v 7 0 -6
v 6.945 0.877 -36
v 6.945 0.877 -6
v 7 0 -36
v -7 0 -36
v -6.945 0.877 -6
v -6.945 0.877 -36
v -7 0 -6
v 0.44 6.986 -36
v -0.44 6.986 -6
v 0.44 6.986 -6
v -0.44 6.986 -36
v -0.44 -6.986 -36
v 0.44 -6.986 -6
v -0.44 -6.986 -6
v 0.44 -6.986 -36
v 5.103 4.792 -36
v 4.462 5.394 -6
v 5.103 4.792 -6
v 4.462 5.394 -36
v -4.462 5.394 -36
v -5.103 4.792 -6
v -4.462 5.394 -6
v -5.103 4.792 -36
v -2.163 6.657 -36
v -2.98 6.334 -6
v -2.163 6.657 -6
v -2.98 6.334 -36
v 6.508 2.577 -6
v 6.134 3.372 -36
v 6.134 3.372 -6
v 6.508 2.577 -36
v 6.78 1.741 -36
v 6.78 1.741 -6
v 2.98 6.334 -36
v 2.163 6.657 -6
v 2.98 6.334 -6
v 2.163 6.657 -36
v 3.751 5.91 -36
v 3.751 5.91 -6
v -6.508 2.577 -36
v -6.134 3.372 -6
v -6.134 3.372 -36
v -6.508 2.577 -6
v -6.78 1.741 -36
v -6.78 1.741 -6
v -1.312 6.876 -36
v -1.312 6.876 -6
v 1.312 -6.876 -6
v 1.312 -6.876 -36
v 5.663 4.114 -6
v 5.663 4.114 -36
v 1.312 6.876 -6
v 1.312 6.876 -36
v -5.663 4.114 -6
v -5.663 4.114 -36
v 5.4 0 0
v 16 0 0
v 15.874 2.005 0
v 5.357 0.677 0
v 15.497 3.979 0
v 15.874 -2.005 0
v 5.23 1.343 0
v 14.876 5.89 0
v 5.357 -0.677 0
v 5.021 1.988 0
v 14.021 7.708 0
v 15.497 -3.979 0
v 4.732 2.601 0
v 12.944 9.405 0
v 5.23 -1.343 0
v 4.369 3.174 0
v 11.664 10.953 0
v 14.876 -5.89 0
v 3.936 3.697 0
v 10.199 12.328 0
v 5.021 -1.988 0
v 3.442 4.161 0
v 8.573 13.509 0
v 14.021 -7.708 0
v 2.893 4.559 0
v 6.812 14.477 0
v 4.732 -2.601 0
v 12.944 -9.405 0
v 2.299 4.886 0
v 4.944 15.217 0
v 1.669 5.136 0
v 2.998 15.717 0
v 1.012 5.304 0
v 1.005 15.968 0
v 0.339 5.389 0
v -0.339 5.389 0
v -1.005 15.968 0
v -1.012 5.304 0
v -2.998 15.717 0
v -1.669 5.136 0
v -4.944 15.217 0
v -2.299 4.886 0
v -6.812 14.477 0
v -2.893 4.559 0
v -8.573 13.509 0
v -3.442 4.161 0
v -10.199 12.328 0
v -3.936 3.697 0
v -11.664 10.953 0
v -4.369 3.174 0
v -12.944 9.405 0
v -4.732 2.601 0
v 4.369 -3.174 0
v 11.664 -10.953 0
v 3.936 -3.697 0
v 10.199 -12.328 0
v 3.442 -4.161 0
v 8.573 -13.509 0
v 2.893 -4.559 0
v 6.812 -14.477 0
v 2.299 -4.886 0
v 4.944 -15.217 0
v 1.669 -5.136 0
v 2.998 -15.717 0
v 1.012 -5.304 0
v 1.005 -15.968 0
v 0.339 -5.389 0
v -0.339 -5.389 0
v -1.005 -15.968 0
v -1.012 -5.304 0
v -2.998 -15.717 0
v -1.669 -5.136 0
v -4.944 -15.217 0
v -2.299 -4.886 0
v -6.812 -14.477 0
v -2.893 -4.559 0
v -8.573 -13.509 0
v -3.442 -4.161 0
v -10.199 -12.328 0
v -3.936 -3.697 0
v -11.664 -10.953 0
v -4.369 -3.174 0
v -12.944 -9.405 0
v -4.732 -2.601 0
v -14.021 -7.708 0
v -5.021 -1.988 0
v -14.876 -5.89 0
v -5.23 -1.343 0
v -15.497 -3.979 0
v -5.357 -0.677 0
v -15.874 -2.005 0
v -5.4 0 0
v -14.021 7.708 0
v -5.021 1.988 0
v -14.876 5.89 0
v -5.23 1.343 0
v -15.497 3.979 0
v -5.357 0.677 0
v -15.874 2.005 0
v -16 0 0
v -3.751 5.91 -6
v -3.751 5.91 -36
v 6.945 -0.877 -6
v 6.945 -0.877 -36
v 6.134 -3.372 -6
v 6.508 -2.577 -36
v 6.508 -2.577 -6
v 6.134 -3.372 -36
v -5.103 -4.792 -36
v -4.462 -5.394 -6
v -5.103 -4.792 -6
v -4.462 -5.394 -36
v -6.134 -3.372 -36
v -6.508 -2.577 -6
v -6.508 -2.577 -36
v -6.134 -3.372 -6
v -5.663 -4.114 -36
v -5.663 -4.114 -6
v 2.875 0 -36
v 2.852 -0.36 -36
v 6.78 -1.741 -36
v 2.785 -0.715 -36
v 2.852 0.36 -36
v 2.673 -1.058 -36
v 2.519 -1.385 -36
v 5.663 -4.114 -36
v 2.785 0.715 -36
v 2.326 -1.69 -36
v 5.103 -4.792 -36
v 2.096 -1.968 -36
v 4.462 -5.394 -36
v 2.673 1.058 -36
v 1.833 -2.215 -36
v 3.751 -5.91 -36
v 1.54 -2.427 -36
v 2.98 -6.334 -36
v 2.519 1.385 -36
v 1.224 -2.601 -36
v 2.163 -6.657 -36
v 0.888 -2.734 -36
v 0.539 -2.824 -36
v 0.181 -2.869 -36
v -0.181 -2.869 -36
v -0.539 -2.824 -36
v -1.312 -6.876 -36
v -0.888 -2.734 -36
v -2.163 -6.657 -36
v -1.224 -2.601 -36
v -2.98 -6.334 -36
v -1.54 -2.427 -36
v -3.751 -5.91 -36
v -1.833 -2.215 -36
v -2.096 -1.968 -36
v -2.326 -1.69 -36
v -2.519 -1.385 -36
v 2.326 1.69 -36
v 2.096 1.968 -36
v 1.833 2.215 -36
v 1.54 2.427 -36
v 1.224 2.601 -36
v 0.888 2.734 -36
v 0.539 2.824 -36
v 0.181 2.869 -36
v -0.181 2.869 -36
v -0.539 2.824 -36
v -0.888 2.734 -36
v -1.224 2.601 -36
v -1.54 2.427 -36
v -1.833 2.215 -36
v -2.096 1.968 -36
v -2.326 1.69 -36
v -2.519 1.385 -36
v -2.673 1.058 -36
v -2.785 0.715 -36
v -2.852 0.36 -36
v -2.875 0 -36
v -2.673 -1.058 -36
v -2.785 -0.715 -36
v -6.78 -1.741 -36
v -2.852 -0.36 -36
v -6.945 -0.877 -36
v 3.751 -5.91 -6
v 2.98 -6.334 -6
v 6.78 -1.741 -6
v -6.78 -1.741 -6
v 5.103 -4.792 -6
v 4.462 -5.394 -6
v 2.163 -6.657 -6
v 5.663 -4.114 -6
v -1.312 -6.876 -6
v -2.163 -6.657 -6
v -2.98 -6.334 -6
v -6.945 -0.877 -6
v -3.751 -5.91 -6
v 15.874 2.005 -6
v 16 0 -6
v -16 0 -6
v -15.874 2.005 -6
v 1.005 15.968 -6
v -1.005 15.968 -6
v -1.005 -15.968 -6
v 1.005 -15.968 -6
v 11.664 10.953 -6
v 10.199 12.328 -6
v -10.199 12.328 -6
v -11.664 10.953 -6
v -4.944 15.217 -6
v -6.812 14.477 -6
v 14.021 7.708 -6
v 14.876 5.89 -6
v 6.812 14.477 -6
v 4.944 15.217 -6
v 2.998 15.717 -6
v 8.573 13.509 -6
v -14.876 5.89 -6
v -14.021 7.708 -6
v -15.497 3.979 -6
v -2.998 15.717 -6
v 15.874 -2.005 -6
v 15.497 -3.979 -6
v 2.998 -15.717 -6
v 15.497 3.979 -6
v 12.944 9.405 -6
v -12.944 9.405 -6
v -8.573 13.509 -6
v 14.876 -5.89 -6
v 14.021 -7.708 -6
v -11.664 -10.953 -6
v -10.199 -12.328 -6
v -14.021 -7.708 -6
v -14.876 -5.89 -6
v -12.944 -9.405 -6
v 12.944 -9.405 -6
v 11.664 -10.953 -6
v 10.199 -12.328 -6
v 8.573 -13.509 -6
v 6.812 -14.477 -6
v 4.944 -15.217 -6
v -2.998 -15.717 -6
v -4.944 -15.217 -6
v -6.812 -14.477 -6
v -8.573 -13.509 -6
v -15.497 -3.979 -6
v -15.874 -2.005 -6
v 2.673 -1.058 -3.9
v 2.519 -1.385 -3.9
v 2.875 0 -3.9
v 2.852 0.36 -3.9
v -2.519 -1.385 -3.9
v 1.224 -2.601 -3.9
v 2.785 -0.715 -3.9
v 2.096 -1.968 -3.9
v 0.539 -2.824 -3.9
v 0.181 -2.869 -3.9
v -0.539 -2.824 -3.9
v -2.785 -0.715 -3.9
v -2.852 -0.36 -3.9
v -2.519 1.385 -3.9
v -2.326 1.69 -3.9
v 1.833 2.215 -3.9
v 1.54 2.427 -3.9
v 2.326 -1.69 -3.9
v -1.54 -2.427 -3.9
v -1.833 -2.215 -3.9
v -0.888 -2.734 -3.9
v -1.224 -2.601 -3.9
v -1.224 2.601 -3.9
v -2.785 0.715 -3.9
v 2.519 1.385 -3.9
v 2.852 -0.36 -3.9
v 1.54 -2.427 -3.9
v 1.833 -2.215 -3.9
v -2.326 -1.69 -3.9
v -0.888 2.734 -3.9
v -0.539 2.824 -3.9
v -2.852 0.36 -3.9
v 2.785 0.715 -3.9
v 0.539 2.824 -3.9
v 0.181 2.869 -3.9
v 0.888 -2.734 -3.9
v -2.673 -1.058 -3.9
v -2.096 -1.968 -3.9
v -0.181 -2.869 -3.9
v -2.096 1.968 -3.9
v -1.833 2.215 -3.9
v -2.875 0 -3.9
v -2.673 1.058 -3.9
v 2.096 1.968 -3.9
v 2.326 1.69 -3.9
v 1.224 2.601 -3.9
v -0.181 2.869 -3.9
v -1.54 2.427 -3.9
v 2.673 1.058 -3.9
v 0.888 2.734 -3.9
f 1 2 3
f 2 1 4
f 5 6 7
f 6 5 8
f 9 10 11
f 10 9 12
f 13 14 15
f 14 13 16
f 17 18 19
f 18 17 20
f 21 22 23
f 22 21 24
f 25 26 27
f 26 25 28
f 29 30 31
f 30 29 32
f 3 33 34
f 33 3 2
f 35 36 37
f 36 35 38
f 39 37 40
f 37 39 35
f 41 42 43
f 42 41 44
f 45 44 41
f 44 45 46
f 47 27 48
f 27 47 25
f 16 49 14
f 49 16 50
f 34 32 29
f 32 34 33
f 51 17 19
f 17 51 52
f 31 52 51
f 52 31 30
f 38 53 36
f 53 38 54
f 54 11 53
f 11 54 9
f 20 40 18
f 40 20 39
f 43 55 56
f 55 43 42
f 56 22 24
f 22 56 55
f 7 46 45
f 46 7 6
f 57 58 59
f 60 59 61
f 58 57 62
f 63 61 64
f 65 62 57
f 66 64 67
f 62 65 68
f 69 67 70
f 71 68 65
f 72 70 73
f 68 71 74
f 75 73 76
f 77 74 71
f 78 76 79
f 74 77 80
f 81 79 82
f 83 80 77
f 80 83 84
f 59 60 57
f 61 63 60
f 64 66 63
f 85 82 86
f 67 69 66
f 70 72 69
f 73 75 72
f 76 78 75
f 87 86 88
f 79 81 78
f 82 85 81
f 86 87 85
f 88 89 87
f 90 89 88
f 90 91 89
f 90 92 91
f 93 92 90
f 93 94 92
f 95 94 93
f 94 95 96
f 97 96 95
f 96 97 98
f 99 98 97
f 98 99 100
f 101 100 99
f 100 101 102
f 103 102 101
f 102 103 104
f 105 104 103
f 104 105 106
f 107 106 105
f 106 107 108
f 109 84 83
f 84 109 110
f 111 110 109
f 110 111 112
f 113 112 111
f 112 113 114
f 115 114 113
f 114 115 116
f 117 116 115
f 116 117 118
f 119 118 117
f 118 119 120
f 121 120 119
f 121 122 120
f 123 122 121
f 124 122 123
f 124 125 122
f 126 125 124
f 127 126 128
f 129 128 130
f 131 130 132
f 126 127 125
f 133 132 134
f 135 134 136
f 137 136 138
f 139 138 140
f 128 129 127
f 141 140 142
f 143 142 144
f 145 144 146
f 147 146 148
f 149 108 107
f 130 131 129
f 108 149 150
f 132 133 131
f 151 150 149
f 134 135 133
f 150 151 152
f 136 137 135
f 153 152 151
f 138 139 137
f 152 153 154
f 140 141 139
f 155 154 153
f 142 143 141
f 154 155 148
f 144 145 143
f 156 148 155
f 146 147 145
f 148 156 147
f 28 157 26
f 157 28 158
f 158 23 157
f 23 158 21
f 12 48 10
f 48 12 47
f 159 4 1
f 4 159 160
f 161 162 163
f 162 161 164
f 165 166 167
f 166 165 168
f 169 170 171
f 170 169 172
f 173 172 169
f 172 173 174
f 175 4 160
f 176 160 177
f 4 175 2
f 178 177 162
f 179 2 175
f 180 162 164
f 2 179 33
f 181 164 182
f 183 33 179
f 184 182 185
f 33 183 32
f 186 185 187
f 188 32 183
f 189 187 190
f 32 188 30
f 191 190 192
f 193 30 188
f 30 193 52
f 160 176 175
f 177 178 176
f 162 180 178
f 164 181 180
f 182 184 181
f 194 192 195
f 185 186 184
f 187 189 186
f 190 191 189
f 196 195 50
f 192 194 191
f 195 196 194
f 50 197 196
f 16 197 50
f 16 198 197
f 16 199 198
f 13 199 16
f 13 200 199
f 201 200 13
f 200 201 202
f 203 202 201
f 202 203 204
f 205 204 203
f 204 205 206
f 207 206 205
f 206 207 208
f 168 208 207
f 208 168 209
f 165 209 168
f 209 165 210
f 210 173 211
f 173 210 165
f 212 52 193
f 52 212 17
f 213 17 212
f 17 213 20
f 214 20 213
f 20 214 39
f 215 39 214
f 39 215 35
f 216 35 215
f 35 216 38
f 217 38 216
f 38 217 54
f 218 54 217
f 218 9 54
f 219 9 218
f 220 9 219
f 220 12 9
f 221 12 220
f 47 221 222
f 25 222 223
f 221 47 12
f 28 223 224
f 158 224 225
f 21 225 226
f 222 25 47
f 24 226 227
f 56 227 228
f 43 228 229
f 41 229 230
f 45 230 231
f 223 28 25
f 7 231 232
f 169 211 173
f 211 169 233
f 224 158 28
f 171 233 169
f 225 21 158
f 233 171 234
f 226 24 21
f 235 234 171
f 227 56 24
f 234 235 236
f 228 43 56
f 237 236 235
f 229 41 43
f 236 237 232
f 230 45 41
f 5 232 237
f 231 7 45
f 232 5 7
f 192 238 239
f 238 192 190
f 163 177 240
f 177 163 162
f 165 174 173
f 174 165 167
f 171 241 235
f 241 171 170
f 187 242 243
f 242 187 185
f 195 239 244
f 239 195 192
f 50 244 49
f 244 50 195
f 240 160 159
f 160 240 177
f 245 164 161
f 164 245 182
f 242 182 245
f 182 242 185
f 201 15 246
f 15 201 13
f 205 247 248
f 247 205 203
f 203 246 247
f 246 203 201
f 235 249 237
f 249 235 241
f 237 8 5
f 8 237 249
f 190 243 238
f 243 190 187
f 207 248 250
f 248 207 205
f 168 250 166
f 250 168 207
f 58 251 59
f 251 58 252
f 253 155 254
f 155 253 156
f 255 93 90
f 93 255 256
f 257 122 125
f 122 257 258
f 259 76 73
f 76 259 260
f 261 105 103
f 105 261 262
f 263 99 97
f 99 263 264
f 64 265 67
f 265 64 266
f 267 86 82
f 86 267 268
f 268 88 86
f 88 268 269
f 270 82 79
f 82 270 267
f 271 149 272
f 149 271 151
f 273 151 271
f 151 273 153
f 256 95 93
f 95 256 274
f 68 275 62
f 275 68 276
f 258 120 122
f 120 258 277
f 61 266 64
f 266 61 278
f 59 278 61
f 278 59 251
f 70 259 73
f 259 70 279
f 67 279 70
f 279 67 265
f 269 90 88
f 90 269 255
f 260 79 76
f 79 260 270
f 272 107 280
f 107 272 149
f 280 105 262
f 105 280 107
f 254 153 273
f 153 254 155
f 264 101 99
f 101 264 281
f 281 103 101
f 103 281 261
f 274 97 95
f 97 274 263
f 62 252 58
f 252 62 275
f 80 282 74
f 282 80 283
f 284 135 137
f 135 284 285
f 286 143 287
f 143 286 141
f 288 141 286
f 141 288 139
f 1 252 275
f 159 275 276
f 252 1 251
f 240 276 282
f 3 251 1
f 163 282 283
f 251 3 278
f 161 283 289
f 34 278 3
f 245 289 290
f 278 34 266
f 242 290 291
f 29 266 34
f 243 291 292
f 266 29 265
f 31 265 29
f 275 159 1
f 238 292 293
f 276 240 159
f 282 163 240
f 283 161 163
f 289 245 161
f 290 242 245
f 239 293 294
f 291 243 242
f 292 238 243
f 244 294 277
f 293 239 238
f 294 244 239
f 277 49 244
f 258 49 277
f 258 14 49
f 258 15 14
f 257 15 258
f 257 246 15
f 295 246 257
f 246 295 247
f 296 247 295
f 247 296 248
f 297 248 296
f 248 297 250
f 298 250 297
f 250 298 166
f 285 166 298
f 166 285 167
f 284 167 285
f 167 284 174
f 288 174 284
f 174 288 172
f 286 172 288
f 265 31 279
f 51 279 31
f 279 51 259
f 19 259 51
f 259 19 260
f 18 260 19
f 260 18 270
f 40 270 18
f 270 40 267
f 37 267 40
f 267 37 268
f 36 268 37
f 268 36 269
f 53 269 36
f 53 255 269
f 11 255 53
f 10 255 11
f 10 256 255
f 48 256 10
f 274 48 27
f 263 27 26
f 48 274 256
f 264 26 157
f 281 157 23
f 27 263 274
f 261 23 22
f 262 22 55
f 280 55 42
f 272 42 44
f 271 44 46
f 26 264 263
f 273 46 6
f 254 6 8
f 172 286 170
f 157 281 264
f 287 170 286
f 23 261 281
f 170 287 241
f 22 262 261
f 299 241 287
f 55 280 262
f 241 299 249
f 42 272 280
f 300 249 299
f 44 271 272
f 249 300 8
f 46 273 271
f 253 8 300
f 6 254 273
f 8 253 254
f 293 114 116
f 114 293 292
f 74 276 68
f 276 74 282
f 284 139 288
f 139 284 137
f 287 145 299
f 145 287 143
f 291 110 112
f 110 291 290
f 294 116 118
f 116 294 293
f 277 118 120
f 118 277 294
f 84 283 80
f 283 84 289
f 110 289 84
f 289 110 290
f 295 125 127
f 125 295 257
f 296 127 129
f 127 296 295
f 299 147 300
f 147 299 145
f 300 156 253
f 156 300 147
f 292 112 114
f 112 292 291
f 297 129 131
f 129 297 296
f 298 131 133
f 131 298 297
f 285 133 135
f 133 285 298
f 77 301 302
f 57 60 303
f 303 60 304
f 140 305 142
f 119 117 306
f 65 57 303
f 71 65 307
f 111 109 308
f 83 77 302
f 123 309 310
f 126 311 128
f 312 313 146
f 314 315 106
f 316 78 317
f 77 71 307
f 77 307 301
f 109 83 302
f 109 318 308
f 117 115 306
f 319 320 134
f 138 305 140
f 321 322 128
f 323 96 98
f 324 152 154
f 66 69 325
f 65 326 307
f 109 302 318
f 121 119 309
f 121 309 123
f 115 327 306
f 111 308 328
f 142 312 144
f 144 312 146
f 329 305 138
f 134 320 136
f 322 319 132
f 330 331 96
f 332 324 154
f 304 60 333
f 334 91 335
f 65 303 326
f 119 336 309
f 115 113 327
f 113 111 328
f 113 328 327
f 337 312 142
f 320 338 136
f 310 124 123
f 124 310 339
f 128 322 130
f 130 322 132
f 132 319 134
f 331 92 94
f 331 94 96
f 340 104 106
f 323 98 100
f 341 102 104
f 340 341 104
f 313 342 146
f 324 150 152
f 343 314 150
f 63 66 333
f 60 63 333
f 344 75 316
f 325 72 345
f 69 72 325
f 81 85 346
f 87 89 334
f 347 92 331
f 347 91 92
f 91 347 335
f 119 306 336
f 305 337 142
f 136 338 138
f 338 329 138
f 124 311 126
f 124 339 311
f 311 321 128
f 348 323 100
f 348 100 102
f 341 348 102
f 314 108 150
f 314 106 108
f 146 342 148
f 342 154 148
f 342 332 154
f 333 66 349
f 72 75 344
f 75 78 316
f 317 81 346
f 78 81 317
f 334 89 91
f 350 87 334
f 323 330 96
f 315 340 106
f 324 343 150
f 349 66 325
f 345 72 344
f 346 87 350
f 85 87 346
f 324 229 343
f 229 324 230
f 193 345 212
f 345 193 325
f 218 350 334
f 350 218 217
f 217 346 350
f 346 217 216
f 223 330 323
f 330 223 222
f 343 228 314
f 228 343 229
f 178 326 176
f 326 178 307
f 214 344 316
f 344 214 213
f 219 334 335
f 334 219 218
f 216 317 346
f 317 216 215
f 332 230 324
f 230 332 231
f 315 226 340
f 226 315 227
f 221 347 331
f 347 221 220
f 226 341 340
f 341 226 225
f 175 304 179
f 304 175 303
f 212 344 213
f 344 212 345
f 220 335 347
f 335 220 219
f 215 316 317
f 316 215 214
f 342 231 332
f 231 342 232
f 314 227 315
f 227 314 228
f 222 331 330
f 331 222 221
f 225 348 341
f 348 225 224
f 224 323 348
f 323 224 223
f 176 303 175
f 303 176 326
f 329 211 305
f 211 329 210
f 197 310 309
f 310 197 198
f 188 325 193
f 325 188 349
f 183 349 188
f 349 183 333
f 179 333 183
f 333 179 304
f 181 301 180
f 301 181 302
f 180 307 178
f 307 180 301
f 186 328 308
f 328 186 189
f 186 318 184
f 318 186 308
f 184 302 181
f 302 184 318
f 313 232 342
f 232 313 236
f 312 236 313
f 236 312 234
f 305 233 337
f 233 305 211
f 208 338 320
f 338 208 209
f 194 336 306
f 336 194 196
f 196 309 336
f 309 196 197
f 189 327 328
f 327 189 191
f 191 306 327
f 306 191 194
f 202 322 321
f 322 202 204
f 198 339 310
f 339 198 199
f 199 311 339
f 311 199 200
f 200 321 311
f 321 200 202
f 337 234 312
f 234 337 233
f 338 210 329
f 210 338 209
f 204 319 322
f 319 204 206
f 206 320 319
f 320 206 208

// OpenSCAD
$fn = 50;


difference() {
	union() {
		translate(v = [0, 0, -36.0000000000]) {
			cylinder(h = 36, r = 7.0000000000);
		}
		translate(v = [0, 0, -6.0000000000]) {
			cylinder(h = 6, r = 16.0000000000);
		}
	}
	union() {
		translate(v = [0, 0, 0]) {
			rotate(a = [0, 0, 0]) {
				difference() {
					union() {
						#translate(v = [0, 0, -36.0000000000]) {
							cylinder(h = 36, r = 2.6000000000);
						}
						#translate(v = [0, 0, -3.9000000000]) {
							cylinder(h = 3.9000000000, r1 = 2.8750000000, r2 = 5.4000000000);
						}
						#translate(v = [0, 0, -36.0000000000]) {
							cylinder(h = 36, r = 2.8750000000);
						}
						#translate(v = [0, 0, -36.0000000000]) {
							cylinder(h = 36, r = 2.6000000000);
						}
					}
					union();
				}
			}
		}
	}
}
